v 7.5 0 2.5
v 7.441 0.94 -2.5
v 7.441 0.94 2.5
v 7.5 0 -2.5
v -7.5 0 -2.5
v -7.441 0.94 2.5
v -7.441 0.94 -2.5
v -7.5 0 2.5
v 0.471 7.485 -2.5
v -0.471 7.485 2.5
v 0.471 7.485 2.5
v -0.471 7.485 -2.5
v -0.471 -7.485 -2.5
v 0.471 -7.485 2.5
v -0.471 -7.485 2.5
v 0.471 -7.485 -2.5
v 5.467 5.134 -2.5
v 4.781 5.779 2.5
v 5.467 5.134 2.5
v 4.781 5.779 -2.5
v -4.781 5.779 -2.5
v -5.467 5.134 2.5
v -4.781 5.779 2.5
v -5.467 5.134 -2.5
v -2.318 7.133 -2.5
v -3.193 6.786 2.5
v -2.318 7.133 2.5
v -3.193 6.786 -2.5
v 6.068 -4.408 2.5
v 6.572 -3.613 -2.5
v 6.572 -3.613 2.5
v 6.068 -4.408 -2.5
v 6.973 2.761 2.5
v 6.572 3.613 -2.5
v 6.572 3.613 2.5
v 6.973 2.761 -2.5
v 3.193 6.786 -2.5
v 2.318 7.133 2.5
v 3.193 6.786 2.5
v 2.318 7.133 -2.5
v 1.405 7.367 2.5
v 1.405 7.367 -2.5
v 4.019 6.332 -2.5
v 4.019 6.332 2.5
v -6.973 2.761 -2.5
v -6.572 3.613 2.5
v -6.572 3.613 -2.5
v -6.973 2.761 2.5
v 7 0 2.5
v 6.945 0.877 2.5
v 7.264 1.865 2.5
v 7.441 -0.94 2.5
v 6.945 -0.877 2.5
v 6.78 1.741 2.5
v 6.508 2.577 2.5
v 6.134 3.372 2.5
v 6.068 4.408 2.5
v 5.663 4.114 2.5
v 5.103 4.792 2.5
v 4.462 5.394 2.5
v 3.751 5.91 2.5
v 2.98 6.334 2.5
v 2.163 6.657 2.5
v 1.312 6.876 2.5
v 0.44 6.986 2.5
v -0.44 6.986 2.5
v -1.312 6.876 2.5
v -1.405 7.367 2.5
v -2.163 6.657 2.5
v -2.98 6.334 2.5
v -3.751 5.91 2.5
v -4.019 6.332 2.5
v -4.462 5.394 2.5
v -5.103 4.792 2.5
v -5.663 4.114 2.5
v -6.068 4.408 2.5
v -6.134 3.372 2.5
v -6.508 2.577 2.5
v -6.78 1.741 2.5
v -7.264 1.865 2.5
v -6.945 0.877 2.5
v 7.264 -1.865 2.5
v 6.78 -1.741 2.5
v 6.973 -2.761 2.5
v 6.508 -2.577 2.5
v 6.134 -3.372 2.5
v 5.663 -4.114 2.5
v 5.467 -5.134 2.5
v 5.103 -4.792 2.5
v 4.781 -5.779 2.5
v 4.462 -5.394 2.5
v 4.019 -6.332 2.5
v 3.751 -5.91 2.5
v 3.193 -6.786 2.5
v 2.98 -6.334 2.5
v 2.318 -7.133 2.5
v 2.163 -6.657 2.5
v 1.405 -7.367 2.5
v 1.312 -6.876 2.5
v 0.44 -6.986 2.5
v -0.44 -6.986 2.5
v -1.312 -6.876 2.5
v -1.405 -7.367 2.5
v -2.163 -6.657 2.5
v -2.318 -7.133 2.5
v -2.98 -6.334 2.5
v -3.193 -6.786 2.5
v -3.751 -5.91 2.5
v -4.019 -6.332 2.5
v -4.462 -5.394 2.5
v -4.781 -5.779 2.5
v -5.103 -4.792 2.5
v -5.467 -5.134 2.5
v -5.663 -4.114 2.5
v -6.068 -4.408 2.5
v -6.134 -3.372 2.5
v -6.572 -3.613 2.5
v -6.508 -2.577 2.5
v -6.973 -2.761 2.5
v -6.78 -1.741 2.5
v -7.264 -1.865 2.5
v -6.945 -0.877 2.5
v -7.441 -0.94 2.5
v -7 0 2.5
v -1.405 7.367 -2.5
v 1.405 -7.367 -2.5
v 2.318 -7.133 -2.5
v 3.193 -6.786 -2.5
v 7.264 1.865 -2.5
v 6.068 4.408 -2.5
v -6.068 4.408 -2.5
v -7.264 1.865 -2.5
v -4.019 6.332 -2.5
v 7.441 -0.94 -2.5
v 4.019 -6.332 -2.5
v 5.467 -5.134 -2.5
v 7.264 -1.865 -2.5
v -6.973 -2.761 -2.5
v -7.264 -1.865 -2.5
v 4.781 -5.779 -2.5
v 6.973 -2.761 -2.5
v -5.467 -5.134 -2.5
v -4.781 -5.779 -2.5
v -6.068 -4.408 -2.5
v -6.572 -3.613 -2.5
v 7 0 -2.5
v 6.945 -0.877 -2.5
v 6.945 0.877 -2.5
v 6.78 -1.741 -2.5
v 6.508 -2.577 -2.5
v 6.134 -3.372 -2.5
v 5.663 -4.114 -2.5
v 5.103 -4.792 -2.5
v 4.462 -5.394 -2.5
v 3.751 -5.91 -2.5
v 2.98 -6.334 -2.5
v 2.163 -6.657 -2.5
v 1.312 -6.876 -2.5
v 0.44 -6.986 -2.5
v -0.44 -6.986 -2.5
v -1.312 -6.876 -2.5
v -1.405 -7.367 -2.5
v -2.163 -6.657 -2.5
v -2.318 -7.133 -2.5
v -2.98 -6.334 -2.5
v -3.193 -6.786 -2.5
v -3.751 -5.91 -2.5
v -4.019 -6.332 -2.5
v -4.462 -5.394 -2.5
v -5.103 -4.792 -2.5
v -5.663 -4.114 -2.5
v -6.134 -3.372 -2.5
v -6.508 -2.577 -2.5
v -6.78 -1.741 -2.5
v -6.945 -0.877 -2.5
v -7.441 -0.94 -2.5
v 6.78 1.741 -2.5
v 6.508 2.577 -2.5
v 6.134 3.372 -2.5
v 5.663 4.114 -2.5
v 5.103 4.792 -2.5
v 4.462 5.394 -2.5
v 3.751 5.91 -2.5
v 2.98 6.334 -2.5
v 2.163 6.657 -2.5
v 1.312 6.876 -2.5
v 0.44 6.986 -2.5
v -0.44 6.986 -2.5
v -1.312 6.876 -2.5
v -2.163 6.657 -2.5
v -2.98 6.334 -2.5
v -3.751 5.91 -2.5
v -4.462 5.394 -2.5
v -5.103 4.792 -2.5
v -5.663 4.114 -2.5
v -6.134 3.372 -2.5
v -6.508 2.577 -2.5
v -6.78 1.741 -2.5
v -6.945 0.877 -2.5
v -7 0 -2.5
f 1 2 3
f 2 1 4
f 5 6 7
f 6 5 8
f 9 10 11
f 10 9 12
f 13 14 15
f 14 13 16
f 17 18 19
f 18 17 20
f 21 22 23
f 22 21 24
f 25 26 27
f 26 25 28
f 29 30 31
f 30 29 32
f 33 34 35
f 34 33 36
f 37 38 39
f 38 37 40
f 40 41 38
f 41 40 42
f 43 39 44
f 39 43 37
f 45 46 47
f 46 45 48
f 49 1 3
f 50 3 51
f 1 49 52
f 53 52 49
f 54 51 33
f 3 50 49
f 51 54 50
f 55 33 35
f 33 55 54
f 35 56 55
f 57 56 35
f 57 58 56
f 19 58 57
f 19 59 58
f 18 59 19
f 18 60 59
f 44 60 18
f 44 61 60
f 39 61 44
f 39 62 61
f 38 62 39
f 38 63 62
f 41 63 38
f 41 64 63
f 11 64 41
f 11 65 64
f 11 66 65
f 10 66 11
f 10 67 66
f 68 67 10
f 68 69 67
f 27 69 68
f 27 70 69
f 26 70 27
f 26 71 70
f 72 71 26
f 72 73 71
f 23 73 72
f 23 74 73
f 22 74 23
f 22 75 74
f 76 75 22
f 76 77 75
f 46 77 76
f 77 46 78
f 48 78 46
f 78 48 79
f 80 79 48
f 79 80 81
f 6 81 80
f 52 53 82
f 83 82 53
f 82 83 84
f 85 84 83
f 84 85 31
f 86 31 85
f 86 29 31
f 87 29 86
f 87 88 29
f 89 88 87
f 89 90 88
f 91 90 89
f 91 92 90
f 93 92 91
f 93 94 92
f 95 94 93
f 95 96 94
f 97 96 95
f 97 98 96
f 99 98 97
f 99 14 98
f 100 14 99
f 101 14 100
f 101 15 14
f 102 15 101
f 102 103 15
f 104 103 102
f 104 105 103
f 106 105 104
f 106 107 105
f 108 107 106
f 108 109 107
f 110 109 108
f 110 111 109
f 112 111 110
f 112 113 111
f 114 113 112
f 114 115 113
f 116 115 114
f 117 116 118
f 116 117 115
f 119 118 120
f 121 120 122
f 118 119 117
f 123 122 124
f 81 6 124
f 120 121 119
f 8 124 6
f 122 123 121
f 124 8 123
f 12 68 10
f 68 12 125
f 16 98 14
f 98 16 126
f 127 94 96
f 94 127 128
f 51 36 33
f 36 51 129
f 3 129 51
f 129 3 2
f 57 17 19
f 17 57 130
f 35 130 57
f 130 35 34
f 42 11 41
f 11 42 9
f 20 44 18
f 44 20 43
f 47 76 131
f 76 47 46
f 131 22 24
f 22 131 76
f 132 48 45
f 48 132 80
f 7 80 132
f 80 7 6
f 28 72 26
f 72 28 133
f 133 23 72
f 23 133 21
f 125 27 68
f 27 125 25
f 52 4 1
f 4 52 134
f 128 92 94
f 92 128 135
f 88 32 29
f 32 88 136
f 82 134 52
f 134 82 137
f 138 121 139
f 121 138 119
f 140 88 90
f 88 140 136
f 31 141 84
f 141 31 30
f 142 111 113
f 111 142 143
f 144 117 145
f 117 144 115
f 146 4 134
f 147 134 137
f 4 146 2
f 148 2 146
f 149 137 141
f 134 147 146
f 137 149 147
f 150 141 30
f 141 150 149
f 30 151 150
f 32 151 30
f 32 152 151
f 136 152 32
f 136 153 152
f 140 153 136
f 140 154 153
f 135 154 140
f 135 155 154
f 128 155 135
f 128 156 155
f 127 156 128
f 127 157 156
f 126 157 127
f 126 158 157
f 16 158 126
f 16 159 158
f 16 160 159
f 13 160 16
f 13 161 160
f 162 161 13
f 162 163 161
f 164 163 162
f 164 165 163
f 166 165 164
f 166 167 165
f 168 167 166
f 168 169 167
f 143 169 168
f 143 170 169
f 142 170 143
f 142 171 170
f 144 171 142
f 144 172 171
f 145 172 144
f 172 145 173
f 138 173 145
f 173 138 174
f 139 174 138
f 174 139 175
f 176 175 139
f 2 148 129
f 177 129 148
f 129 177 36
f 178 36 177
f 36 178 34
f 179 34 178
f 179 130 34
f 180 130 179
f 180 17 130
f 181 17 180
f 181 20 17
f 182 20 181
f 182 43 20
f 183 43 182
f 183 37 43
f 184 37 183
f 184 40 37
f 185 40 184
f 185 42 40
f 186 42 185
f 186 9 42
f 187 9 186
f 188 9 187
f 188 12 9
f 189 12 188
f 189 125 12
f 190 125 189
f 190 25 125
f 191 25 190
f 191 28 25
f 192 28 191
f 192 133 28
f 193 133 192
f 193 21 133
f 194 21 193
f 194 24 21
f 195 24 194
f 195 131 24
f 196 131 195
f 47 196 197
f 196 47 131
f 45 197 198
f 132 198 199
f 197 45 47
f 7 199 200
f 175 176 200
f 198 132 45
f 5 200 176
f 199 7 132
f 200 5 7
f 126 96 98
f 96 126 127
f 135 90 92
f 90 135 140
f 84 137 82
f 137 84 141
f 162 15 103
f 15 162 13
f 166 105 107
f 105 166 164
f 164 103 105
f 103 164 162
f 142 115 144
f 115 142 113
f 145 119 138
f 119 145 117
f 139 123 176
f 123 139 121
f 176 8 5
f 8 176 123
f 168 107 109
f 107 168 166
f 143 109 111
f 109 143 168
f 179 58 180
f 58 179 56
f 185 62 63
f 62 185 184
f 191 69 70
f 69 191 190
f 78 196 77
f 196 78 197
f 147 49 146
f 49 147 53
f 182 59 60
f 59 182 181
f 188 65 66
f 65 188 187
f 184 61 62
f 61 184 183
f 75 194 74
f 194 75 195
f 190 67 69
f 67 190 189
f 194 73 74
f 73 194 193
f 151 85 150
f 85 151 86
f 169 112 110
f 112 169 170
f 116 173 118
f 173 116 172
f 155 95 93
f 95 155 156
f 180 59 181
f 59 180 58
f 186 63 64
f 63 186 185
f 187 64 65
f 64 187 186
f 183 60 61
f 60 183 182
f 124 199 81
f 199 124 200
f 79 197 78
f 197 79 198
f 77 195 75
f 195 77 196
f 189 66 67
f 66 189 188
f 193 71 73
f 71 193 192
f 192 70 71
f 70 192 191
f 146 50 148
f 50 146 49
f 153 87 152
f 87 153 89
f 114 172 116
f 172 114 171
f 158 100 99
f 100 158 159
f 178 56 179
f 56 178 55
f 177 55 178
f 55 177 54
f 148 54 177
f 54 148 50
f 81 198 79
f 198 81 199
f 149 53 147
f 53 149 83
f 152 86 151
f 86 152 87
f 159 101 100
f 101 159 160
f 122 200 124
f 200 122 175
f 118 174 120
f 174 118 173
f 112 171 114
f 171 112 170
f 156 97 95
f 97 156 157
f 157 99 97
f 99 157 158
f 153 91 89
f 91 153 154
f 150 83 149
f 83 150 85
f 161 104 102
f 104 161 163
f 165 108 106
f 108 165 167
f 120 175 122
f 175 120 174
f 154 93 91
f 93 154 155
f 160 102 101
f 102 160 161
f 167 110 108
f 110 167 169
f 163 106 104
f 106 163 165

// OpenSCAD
$fn = 50;


difference() {
	union() {
		translate(v = [0, 0, -2.5000000000]) {
			cylinder(h = 5, r = 7.5000000000);
		}
	}
	union() {
		translate(v = [0, 0, -100.0000000000]) {
			cylinder(h = 200, r = 7);
		}
	}
}
